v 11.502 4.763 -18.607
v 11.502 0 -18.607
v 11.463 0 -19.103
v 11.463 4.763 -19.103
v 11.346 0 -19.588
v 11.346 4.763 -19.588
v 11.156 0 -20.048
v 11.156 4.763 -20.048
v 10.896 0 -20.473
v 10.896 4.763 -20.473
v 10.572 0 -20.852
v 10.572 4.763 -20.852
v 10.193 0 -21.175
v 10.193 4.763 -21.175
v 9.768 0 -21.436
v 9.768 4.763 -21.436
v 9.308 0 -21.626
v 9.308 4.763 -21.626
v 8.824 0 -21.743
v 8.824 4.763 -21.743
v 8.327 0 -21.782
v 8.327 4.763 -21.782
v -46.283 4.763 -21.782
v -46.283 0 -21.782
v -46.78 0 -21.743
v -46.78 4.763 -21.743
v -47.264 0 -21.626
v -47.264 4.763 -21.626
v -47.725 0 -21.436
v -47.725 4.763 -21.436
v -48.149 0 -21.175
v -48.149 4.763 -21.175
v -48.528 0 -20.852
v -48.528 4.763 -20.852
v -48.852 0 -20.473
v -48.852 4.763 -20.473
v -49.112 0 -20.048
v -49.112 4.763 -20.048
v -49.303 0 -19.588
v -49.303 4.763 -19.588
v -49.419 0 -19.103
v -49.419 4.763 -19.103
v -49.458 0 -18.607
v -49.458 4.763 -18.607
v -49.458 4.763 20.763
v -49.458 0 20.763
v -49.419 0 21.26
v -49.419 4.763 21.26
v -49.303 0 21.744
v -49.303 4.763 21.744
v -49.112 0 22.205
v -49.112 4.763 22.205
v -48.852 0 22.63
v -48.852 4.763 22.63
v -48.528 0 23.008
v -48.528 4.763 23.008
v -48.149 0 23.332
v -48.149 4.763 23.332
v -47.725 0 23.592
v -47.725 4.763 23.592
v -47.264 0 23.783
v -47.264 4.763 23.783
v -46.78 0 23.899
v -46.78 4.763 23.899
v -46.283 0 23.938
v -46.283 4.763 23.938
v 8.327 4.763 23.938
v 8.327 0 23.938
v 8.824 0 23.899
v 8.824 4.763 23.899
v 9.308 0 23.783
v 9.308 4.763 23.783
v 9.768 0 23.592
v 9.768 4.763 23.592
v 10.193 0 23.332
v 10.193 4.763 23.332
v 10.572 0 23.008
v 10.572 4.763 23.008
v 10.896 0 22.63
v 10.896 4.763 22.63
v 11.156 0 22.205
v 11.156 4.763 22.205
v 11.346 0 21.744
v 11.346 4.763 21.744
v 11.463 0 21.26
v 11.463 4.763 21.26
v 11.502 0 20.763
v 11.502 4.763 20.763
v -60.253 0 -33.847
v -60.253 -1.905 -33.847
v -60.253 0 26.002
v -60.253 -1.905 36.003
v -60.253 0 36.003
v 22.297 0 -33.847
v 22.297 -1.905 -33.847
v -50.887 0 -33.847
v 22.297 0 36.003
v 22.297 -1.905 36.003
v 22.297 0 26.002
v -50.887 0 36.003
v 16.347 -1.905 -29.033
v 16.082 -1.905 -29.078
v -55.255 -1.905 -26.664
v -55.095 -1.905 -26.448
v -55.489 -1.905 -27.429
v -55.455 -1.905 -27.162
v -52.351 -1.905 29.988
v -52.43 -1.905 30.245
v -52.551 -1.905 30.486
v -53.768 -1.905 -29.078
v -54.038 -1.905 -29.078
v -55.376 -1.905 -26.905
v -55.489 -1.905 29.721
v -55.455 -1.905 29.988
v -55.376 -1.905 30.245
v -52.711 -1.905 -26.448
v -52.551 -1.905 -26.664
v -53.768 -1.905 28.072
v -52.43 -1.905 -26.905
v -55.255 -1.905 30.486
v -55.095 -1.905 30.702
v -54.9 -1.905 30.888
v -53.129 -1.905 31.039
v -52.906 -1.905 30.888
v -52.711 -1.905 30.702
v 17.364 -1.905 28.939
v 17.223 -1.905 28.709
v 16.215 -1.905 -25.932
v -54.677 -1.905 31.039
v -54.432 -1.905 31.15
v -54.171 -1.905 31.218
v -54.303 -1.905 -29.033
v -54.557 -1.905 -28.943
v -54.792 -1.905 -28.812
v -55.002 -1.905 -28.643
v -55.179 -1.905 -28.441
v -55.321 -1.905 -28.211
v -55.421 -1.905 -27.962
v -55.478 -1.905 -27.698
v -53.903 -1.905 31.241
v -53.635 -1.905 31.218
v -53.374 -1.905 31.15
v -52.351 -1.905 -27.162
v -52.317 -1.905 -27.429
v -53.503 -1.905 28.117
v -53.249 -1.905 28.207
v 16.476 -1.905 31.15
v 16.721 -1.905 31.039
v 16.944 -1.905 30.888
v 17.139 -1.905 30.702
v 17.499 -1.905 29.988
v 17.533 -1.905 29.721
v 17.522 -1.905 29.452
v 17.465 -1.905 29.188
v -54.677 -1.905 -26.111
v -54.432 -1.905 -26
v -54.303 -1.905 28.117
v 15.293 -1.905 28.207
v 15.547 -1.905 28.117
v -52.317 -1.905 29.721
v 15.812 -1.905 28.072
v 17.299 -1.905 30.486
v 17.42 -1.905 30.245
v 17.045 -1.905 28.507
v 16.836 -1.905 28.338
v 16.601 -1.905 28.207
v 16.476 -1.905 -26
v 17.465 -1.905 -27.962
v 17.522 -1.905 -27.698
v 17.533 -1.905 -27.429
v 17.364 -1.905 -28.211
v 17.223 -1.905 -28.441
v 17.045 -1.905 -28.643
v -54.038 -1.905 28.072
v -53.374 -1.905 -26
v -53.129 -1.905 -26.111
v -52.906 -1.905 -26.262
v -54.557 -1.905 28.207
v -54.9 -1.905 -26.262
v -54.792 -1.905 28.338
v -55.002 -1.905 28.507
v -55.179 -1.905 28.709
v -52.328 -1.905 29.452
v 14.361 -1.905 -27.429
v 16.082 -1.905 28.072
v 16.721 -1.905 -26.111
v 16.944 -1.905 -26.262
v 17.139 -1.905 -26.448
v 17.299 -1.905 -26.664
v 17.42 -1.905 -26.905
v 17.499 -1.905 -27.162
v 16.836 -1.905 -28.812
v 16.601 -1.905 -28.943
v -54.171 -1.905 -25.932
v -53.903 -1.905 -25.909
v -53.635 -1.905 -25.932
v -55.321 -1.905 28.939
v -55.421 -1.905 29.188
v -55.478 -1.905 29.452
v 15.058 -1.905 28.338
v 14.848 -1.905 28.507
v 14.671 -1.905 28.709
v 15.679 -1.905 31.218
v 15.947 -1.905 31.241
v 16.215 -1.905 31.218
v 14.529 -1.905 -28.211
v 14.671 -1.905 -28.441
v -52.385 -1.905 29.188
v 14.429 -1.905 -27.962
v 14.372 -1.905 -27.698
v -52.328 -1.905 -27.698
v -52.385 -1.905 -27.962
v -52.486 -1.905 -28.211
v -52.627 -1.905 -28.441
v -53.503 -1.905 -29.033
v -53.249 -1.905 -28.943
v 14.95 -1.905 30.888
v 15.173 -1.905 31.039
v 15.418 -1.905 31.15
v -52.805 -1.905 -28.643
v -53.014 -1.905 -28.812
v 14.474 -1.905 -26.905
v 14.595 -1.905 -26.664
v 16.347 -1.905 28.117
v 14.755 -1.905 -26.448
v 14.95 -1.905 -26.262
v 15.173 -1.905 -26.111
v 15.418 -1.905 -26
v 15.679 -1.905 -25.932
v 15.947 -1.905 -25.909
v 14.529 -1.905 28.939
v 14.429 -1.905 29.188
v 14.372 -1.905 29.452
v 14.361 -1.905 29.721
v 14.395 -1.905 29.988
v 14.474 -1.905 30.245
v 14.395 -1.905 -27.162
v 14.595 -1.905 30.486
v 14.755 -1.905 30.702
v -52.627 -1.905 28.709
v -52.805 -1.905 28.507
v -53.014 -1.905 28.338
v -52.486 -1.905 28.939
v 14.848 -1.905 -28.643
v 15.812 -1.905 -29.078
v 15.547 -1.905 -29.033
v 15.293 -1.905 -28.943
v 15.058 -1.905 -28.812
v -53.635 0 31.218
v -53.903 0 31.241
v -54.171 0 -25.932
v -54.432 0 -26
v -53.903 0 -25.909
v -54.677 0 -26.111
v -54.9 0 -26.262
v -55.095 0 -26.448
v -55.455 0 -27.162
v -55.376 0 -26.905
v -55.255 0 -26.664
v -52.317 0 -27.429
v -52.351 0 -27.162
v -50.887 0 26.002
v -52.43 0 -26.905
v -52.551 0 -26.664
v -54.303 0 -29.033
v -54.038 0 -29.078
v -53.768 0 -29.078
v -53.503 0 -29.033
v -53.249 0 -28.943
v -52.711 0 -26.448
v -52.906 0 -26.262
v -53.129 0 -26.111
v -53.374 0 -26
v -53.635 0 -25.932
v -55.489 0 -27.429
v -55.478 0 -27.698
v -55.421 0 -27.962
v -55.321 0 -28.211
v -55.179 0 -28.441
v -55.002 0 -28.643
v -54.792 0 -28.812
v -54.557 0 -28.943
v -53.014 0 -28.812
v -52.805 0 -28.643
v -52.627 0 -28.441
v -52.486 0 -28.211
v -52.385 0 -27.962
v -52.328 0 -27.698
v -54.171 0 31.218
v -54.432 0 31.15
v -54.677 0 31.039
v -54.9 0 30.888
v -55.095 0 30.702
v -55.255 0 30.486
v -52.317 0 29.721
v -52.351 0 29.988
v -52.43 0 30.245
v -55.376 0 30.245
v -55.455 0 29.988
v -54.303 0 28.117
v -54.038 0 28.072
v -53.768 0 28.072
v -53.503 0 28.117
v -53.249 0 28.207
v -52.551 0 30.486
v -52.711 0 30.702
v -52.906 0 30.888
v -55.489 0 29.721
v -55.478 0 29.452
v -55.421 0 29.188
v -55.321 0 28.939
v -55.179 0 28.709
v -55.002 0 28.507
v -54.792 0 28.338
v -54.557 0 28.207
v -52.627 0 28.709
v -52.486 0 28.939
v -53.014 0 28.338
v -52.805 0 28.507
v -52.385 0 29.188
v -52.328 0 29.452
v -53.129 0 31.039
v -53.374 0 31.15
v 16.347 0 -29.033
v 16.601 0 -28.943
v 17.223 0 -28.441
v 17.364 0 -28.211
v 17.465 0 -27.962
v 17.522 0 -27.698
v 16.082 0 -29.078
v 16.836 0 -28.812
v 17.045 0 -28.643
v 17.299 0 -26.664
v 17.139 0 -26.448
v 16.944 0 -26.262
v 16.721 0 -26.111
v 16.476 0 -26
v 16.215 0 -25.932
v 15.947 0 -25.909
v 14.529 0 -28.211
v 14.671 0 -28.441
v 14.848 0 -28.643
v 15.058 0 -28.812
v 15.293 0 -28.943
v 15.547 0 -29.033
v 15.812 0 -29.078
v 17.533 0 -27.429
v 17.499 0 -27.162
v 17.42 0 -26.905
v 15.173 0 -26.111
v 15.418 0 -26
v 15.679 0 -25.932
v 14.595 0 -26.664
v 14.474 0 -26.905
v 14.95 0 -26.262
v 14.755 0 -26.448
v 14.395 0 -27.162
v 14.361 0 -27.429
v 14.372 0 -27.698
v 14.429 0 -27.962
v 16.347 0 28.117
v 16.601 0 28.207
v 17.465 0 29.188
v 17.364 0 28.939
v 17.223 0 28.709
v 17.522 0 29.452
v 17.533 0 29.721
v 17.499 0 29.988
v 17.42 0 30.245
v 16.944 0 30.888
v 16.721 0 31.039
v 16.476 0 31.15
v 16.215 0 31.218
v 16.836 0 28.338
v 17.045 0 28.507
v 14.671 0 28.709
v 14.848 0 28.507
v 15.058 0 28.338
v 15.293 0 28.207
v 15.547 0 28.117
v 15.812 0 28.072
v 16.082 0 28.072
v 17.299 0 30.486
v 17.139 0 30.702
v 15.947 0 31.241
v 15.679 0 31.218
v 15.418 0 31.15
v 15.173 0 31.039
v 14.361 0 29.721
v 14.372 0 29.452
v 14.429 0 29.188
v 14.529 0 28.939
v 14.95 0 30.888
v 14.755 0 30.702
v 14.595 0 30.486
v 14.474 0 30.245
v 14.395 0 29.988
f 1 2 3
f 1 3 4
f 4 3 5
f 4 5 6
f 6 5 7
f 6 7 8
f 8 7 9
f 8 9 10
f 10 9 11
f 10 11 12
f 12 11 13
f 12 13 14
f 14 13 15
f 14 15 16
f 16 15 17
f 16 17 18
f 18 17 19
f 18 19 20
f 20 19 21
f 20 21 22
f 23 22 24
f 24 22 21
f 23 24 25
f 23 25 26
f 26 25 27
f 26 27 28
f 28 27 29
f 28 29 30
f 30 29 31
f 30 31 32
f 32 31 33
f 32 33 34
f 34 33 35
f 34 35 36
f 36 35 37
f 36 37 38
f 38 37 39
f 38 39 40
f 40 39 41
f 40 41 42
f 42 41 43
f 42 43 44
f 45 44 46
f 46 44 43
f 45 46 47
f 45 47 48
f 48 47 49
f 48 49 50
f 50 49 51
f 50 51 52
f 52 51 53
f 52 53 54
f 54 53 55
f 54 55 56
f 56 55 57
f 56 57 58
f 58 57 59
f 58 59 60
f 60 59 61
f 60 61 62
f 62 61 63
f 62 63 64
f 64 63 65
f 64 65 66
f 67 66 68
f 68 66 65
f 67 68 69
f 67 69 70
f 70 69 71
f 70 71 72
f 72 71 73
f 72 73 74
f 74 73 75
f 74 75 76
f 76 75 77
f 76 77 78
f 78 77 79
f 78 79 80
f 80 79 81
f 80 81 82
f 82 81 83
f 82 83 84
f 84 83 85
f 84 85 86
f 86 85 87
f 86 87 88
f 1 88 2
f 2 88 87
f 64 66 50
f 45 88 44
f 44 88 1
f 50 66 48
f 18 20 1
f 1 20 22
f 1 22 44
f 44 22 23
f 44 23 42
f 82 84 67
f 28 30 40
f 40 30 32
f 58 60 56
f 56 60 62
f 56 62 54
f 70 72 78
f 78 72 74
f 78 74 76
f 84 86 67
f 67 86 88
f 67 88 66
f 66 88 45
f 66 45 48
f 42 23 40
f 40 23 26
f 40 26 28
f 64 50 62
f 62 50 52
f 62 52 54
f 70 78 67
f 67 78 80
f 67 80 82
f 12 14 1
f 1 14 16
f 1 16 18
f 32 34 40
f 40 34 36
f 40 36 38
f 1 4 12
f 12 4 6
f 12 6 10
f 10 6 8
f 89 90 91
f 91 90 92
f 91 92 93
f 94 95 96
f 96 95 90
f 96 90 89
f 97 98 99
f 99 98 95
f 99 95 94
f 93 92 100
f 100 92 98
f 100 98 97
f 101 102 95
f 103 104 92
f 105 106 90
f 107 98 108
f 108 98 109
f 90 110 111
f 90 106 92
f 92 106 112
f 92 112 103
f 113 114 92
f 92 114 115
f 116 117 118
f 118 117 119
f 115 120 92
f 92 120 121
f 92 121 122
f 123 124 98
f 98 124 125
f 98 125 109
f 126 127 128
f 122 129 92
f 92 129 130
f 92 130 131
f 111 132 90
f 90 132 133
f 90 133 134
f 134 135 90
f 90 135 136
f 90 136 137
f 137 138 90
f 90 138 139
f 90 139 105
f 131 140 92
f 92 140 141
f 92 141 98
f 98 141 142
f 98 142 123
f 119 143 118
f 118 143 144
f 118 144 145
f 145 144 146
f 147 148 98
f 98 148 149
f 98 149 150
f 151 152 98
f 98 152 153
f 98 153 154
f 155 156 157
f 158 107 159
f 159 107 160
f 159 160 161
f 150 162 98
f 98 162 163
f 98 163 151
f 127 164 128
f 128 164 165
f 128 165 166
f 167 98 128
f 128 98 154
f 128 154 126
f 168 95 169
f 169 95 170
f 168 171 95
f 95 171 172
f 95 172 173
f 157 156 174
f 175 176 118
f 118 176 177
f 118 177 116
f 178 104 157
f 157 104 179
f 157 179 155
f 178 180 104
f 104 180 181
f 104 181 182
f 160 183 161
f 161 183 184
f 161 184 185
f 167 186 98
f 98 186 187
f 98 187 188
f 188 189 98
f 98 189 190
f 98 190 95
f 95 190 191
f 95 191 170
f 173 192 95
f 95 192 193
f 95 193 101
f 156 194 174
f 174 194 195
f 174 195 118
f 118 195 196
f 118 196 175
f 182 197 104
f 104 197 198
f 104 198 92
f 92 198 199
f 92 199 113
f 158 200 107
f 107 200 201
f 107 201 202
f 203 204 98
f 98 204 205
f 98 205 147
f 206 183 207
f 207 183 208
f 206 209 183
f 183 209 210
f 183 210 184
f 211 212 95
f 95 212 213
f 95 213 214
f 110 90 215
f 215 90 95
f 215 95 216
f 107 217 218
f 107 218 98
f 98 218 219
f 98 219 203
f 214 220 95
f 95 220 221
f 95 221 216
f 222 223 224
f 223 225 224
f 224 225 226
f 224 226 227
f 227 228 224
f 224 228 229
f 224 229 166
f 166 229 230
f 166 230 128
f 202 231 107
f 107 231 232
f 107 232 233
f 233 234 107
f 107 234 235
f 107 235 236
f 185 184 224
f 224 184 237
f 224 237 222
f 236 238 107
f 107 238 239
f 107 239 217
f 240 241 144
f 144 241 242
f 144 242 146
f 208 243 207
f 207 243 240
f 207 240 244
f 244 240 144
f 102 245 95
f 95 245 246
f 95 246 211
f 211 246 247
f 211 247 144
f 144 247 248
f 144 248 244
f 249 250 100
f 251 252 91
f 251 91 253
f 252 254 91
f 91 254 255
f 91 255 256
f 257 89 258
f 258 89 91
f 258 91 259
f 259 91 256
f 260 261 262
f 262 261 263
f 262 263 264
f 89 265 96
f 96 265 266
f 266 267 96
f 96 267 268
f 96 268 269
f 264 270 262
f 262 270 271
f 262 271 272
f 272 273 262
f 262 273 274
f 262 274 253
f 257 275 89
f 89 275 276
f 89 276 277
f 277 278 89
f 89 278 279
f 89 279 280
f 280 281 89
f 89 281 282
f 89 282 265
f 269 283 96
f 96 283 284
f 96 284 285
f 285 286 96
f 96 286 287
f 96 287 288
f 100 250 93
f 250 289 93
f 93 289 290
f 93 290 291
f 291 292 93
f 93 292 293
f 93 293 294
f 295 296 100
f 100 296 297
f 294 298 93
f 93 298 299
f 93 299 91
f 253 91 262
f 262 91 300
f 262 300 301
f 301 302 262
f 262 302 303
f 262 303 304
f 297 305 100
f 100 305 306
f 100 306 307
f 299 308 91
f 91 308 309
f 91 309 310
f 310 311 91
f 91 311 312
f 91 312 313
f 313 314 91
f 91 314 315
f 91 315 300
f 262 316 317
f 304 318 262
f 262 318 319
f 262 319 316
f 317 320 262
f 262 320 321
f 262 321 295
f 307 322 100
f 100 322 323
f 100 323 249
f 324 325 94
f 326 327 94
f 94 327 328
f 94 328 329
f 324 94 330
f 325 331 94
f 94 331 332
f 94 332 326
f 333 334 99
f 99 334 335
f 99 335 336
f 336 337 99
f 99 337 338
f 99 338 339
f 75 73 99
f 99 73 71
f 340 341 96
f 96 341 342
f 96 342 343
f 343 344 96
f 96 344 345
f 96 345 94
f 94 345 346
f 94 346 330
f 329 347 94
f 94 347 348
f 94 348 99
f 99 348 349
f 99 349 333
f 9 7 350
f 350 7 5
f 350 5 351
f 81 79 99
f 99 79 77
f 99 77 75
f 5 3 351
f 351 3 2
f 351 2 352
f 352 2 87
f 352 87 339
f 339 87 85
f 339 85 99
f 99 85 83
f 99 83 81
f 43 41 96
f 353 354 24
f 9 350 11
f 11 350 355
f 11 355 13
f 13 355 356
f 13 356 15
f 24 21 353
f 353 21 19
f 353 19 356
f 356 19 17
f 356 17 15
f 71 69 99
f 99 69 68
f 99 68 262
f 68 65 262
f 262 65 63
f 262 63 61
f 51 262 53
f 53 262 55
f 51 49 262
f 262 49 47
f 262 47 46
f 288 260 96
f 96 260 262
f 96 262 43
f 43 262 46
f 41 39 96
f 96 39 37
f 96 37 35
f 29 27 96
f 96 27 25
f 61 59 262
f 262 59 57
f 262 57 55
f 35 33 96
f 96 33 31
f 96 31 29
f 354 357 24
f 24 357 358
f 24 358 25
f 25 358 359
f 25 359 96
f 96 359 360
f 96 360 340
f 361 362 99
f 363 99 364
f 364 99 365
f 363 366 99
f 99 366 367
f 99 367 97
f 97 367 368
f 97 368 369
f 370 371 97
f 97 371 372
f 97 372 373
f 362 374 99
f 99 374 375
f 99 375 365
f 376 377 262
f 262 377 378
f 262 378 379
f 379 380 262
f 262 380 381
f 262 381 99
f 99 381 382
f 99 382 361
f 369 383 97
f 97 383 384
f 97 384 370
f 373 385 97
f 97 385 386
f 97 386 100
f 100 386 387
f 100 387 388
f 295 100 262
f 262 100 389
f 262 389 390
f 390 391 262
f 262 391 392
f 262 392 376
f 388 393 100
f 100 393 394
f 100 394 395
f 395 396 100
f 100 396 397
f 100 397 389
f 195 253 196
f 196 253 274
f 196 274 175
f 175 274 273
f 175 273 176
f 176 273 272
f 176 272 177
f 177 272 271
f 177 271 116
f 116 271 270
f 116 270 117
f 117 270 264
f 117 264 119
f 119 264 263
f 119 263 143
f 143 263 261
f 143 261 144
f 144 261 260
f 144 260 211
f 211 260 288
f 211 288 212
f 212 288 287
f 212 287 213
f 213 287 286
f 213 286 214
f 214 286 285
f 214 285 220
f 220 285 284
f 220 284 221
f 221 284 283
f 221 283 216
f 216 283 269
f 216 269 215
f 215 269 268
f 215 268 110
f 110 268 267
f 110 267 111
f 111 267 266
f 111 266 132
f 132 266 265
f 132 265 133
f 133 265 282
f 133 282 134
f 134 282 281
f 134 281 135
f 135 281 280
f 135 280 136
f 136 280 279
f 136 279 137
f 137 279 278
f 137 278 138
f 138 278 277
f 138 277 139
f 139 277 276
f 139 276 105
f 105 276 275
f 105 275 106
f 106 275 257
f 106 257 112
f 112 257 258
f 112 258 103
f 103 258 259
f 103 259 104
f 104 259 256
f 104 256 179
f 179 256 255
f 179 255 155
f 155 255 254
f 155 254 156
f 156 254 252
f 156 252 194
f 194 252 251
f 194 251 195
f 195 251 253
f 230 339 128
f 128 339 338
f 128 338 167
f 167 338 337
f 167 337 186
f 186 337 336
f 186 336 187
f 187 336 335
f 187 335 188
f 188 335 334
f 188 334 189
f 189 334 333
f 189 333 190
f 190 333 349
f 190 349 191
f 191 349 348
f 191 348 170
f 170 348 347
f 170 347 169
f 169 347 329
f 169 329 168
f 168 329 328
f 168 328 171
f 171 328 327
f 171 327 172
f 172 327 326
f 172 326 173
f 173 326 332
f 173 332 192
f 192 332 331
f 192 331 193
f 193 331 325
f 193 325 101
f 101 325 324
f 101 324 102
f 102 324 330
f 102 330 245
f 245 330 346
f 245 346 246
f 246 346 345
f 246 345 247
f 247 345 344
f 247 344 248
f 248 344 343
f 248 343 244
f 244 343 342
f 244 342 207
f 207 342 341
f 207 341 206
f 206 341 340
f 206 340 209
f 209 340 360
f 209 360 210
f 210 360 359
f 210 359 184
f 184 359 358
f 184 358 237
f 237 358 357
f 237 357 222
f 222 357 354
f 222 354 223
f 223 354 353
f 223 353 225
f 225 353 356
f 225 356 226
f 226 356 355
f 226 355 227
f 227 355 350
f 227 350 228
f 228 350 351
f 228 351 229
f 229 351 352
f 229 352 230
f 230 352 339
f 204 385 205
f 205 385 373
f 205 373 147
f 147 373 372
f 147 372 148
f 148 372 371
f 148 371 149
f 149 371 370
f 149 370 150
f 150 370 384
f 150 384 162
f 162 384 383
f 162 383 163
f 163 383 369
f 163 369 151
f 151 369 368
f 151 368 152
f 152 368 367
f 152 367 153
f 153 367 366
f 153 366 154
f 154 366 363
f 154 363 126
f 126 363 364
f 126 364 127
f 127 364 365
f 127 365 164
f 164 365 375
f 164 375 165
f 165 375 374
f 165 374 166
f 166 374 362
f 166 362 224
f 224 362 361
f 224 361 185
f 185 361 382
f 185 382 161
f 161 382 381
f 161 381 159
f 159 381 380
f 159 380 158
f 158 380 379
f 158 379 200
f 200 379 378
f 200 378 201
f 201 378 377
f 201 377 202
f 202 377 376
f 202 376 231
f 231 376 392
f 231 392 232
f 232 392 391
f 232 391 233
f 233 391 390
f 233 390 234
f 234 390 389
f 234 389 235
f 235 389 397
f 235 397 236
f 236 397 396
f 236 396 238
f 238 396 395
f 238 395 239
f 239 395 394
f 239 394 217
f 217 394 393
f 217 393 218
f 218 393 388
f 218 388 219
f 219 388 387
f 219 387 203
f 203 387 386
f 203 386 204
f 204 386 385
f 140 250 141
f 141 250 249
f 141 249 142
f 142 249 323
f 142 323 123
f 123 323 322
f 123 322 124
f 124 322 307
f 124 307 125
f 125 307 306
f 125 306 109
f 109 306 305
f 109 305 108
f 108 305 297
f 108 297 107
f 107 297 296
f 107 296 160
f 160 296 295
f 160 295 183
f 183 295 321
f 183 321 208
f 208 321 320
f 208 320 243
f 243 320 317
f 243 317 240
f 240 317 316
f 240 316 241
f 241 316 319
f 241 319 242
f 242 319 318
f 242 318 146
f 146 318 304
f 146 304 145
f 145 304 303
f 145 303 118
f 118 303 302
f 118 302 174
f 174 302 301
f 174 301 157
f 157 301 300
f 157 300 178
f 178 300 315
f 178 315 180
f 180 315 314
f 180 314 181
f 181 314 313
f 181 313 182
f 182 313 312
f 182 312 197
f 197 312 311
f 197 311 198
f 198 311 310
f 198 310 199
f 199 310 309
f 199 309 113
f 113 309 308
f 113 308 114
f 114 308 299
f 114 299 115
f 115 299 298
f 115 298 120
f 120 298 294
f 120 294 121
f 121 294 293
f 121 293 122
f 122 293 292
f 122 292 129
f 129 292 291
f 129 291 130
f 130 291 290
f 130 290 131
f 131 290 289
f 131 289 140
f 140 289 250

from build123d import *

# Parameters (mm, degrees)
BOSS_EXTRUDE1_DEPTH = 4.7625
SKETCH3_W           = 82.55
SKETCH3_H           = 69.85
BOSS_EXTRUDE2_DEPTH = 1.905
SKETCH4_R           = 1.5875
CUT_EXTRUDE1_DEPTH  = 71.351665255


with BuildPart() as part:
    # Sketch1 → Boss-Extrude1 (new body)
    with BuildSketch(Plane(origin=(0, 0, 0), x_dir=(1, 0, 0), z_dir=(0, 1, 0))):
        with BuildLine():
            Line((-46.283113208, 21.781698113), (8.326886792, 21.781698113))
            ThreePointArc((8.326886792, 21.781698113), (10.571950823, 20.851762143), (11.501886792, 18.606698113))
            Line((11.501886792, 18.606698113), (11.501886792, -20.763301887))
            ThreePointArc((11.501886792, -20.763301887), (10.571950823, -23.008365917), (8.326886792, -23.938301887))
            Line((8.326886792, -23.938301887), (-46.283113208, -23.938301887))
            ThreePointArc((-46.283113208, -23.938301887), (-48.528177238, -23.008365917), (-49.458113208, -20.763301887))
            Line((-49.458113208, -20.763301887), (-49.458113208, 18.606698113))
            ThreePointArc((-49.458113208, 18.606698113), (-48.528177238, 20.851762143), (-46.283113208, 21.781698113))
        make_face()
    extrude(amount=BOSS_EXTRUDE1_DEPTH)

    # Sketch3 → Boss-Extrude2 (add)
    with BuildSketch(Plane.XZ):
        with Locations((-18.978113208, 1.078301887)):
            Rectangle(SKETCH3_W, SKETCH3_H)
    extrude(amount=BOSS_EXTRUDE2_DEPTH)

    # Sketch4 → Cut-Extrude1 (cut, through all)
    with BuildSketch(Plane(origin=(0, 0, 0), x_dir=(1, 0, 0), z_dir=(0, 1, 0))):
        with Locations(Location((-53.903113208, 27.496698113, 0), (0, 0, 270))):
            Circle(SKETCH4_R)
        with Locations(Location((15.946886792, 27.496698113, 0), (0, 0, 270))):
            Circle(SKETCH4_R)
        with Locations(Location((15.946886792, -29.653301887, 0), (0, 0, 270))):
            Circle(SKETCH4_R)
        with Locations(Location((-53.903113208, -29.653301887, 0), (0, 0, 270))):
            Circle(SKETCH4_R)
    extrude(amount=-CUT_EXTRUDE1_DEPTH, mode=Mode.SUBTRACT)


solid = part.part
